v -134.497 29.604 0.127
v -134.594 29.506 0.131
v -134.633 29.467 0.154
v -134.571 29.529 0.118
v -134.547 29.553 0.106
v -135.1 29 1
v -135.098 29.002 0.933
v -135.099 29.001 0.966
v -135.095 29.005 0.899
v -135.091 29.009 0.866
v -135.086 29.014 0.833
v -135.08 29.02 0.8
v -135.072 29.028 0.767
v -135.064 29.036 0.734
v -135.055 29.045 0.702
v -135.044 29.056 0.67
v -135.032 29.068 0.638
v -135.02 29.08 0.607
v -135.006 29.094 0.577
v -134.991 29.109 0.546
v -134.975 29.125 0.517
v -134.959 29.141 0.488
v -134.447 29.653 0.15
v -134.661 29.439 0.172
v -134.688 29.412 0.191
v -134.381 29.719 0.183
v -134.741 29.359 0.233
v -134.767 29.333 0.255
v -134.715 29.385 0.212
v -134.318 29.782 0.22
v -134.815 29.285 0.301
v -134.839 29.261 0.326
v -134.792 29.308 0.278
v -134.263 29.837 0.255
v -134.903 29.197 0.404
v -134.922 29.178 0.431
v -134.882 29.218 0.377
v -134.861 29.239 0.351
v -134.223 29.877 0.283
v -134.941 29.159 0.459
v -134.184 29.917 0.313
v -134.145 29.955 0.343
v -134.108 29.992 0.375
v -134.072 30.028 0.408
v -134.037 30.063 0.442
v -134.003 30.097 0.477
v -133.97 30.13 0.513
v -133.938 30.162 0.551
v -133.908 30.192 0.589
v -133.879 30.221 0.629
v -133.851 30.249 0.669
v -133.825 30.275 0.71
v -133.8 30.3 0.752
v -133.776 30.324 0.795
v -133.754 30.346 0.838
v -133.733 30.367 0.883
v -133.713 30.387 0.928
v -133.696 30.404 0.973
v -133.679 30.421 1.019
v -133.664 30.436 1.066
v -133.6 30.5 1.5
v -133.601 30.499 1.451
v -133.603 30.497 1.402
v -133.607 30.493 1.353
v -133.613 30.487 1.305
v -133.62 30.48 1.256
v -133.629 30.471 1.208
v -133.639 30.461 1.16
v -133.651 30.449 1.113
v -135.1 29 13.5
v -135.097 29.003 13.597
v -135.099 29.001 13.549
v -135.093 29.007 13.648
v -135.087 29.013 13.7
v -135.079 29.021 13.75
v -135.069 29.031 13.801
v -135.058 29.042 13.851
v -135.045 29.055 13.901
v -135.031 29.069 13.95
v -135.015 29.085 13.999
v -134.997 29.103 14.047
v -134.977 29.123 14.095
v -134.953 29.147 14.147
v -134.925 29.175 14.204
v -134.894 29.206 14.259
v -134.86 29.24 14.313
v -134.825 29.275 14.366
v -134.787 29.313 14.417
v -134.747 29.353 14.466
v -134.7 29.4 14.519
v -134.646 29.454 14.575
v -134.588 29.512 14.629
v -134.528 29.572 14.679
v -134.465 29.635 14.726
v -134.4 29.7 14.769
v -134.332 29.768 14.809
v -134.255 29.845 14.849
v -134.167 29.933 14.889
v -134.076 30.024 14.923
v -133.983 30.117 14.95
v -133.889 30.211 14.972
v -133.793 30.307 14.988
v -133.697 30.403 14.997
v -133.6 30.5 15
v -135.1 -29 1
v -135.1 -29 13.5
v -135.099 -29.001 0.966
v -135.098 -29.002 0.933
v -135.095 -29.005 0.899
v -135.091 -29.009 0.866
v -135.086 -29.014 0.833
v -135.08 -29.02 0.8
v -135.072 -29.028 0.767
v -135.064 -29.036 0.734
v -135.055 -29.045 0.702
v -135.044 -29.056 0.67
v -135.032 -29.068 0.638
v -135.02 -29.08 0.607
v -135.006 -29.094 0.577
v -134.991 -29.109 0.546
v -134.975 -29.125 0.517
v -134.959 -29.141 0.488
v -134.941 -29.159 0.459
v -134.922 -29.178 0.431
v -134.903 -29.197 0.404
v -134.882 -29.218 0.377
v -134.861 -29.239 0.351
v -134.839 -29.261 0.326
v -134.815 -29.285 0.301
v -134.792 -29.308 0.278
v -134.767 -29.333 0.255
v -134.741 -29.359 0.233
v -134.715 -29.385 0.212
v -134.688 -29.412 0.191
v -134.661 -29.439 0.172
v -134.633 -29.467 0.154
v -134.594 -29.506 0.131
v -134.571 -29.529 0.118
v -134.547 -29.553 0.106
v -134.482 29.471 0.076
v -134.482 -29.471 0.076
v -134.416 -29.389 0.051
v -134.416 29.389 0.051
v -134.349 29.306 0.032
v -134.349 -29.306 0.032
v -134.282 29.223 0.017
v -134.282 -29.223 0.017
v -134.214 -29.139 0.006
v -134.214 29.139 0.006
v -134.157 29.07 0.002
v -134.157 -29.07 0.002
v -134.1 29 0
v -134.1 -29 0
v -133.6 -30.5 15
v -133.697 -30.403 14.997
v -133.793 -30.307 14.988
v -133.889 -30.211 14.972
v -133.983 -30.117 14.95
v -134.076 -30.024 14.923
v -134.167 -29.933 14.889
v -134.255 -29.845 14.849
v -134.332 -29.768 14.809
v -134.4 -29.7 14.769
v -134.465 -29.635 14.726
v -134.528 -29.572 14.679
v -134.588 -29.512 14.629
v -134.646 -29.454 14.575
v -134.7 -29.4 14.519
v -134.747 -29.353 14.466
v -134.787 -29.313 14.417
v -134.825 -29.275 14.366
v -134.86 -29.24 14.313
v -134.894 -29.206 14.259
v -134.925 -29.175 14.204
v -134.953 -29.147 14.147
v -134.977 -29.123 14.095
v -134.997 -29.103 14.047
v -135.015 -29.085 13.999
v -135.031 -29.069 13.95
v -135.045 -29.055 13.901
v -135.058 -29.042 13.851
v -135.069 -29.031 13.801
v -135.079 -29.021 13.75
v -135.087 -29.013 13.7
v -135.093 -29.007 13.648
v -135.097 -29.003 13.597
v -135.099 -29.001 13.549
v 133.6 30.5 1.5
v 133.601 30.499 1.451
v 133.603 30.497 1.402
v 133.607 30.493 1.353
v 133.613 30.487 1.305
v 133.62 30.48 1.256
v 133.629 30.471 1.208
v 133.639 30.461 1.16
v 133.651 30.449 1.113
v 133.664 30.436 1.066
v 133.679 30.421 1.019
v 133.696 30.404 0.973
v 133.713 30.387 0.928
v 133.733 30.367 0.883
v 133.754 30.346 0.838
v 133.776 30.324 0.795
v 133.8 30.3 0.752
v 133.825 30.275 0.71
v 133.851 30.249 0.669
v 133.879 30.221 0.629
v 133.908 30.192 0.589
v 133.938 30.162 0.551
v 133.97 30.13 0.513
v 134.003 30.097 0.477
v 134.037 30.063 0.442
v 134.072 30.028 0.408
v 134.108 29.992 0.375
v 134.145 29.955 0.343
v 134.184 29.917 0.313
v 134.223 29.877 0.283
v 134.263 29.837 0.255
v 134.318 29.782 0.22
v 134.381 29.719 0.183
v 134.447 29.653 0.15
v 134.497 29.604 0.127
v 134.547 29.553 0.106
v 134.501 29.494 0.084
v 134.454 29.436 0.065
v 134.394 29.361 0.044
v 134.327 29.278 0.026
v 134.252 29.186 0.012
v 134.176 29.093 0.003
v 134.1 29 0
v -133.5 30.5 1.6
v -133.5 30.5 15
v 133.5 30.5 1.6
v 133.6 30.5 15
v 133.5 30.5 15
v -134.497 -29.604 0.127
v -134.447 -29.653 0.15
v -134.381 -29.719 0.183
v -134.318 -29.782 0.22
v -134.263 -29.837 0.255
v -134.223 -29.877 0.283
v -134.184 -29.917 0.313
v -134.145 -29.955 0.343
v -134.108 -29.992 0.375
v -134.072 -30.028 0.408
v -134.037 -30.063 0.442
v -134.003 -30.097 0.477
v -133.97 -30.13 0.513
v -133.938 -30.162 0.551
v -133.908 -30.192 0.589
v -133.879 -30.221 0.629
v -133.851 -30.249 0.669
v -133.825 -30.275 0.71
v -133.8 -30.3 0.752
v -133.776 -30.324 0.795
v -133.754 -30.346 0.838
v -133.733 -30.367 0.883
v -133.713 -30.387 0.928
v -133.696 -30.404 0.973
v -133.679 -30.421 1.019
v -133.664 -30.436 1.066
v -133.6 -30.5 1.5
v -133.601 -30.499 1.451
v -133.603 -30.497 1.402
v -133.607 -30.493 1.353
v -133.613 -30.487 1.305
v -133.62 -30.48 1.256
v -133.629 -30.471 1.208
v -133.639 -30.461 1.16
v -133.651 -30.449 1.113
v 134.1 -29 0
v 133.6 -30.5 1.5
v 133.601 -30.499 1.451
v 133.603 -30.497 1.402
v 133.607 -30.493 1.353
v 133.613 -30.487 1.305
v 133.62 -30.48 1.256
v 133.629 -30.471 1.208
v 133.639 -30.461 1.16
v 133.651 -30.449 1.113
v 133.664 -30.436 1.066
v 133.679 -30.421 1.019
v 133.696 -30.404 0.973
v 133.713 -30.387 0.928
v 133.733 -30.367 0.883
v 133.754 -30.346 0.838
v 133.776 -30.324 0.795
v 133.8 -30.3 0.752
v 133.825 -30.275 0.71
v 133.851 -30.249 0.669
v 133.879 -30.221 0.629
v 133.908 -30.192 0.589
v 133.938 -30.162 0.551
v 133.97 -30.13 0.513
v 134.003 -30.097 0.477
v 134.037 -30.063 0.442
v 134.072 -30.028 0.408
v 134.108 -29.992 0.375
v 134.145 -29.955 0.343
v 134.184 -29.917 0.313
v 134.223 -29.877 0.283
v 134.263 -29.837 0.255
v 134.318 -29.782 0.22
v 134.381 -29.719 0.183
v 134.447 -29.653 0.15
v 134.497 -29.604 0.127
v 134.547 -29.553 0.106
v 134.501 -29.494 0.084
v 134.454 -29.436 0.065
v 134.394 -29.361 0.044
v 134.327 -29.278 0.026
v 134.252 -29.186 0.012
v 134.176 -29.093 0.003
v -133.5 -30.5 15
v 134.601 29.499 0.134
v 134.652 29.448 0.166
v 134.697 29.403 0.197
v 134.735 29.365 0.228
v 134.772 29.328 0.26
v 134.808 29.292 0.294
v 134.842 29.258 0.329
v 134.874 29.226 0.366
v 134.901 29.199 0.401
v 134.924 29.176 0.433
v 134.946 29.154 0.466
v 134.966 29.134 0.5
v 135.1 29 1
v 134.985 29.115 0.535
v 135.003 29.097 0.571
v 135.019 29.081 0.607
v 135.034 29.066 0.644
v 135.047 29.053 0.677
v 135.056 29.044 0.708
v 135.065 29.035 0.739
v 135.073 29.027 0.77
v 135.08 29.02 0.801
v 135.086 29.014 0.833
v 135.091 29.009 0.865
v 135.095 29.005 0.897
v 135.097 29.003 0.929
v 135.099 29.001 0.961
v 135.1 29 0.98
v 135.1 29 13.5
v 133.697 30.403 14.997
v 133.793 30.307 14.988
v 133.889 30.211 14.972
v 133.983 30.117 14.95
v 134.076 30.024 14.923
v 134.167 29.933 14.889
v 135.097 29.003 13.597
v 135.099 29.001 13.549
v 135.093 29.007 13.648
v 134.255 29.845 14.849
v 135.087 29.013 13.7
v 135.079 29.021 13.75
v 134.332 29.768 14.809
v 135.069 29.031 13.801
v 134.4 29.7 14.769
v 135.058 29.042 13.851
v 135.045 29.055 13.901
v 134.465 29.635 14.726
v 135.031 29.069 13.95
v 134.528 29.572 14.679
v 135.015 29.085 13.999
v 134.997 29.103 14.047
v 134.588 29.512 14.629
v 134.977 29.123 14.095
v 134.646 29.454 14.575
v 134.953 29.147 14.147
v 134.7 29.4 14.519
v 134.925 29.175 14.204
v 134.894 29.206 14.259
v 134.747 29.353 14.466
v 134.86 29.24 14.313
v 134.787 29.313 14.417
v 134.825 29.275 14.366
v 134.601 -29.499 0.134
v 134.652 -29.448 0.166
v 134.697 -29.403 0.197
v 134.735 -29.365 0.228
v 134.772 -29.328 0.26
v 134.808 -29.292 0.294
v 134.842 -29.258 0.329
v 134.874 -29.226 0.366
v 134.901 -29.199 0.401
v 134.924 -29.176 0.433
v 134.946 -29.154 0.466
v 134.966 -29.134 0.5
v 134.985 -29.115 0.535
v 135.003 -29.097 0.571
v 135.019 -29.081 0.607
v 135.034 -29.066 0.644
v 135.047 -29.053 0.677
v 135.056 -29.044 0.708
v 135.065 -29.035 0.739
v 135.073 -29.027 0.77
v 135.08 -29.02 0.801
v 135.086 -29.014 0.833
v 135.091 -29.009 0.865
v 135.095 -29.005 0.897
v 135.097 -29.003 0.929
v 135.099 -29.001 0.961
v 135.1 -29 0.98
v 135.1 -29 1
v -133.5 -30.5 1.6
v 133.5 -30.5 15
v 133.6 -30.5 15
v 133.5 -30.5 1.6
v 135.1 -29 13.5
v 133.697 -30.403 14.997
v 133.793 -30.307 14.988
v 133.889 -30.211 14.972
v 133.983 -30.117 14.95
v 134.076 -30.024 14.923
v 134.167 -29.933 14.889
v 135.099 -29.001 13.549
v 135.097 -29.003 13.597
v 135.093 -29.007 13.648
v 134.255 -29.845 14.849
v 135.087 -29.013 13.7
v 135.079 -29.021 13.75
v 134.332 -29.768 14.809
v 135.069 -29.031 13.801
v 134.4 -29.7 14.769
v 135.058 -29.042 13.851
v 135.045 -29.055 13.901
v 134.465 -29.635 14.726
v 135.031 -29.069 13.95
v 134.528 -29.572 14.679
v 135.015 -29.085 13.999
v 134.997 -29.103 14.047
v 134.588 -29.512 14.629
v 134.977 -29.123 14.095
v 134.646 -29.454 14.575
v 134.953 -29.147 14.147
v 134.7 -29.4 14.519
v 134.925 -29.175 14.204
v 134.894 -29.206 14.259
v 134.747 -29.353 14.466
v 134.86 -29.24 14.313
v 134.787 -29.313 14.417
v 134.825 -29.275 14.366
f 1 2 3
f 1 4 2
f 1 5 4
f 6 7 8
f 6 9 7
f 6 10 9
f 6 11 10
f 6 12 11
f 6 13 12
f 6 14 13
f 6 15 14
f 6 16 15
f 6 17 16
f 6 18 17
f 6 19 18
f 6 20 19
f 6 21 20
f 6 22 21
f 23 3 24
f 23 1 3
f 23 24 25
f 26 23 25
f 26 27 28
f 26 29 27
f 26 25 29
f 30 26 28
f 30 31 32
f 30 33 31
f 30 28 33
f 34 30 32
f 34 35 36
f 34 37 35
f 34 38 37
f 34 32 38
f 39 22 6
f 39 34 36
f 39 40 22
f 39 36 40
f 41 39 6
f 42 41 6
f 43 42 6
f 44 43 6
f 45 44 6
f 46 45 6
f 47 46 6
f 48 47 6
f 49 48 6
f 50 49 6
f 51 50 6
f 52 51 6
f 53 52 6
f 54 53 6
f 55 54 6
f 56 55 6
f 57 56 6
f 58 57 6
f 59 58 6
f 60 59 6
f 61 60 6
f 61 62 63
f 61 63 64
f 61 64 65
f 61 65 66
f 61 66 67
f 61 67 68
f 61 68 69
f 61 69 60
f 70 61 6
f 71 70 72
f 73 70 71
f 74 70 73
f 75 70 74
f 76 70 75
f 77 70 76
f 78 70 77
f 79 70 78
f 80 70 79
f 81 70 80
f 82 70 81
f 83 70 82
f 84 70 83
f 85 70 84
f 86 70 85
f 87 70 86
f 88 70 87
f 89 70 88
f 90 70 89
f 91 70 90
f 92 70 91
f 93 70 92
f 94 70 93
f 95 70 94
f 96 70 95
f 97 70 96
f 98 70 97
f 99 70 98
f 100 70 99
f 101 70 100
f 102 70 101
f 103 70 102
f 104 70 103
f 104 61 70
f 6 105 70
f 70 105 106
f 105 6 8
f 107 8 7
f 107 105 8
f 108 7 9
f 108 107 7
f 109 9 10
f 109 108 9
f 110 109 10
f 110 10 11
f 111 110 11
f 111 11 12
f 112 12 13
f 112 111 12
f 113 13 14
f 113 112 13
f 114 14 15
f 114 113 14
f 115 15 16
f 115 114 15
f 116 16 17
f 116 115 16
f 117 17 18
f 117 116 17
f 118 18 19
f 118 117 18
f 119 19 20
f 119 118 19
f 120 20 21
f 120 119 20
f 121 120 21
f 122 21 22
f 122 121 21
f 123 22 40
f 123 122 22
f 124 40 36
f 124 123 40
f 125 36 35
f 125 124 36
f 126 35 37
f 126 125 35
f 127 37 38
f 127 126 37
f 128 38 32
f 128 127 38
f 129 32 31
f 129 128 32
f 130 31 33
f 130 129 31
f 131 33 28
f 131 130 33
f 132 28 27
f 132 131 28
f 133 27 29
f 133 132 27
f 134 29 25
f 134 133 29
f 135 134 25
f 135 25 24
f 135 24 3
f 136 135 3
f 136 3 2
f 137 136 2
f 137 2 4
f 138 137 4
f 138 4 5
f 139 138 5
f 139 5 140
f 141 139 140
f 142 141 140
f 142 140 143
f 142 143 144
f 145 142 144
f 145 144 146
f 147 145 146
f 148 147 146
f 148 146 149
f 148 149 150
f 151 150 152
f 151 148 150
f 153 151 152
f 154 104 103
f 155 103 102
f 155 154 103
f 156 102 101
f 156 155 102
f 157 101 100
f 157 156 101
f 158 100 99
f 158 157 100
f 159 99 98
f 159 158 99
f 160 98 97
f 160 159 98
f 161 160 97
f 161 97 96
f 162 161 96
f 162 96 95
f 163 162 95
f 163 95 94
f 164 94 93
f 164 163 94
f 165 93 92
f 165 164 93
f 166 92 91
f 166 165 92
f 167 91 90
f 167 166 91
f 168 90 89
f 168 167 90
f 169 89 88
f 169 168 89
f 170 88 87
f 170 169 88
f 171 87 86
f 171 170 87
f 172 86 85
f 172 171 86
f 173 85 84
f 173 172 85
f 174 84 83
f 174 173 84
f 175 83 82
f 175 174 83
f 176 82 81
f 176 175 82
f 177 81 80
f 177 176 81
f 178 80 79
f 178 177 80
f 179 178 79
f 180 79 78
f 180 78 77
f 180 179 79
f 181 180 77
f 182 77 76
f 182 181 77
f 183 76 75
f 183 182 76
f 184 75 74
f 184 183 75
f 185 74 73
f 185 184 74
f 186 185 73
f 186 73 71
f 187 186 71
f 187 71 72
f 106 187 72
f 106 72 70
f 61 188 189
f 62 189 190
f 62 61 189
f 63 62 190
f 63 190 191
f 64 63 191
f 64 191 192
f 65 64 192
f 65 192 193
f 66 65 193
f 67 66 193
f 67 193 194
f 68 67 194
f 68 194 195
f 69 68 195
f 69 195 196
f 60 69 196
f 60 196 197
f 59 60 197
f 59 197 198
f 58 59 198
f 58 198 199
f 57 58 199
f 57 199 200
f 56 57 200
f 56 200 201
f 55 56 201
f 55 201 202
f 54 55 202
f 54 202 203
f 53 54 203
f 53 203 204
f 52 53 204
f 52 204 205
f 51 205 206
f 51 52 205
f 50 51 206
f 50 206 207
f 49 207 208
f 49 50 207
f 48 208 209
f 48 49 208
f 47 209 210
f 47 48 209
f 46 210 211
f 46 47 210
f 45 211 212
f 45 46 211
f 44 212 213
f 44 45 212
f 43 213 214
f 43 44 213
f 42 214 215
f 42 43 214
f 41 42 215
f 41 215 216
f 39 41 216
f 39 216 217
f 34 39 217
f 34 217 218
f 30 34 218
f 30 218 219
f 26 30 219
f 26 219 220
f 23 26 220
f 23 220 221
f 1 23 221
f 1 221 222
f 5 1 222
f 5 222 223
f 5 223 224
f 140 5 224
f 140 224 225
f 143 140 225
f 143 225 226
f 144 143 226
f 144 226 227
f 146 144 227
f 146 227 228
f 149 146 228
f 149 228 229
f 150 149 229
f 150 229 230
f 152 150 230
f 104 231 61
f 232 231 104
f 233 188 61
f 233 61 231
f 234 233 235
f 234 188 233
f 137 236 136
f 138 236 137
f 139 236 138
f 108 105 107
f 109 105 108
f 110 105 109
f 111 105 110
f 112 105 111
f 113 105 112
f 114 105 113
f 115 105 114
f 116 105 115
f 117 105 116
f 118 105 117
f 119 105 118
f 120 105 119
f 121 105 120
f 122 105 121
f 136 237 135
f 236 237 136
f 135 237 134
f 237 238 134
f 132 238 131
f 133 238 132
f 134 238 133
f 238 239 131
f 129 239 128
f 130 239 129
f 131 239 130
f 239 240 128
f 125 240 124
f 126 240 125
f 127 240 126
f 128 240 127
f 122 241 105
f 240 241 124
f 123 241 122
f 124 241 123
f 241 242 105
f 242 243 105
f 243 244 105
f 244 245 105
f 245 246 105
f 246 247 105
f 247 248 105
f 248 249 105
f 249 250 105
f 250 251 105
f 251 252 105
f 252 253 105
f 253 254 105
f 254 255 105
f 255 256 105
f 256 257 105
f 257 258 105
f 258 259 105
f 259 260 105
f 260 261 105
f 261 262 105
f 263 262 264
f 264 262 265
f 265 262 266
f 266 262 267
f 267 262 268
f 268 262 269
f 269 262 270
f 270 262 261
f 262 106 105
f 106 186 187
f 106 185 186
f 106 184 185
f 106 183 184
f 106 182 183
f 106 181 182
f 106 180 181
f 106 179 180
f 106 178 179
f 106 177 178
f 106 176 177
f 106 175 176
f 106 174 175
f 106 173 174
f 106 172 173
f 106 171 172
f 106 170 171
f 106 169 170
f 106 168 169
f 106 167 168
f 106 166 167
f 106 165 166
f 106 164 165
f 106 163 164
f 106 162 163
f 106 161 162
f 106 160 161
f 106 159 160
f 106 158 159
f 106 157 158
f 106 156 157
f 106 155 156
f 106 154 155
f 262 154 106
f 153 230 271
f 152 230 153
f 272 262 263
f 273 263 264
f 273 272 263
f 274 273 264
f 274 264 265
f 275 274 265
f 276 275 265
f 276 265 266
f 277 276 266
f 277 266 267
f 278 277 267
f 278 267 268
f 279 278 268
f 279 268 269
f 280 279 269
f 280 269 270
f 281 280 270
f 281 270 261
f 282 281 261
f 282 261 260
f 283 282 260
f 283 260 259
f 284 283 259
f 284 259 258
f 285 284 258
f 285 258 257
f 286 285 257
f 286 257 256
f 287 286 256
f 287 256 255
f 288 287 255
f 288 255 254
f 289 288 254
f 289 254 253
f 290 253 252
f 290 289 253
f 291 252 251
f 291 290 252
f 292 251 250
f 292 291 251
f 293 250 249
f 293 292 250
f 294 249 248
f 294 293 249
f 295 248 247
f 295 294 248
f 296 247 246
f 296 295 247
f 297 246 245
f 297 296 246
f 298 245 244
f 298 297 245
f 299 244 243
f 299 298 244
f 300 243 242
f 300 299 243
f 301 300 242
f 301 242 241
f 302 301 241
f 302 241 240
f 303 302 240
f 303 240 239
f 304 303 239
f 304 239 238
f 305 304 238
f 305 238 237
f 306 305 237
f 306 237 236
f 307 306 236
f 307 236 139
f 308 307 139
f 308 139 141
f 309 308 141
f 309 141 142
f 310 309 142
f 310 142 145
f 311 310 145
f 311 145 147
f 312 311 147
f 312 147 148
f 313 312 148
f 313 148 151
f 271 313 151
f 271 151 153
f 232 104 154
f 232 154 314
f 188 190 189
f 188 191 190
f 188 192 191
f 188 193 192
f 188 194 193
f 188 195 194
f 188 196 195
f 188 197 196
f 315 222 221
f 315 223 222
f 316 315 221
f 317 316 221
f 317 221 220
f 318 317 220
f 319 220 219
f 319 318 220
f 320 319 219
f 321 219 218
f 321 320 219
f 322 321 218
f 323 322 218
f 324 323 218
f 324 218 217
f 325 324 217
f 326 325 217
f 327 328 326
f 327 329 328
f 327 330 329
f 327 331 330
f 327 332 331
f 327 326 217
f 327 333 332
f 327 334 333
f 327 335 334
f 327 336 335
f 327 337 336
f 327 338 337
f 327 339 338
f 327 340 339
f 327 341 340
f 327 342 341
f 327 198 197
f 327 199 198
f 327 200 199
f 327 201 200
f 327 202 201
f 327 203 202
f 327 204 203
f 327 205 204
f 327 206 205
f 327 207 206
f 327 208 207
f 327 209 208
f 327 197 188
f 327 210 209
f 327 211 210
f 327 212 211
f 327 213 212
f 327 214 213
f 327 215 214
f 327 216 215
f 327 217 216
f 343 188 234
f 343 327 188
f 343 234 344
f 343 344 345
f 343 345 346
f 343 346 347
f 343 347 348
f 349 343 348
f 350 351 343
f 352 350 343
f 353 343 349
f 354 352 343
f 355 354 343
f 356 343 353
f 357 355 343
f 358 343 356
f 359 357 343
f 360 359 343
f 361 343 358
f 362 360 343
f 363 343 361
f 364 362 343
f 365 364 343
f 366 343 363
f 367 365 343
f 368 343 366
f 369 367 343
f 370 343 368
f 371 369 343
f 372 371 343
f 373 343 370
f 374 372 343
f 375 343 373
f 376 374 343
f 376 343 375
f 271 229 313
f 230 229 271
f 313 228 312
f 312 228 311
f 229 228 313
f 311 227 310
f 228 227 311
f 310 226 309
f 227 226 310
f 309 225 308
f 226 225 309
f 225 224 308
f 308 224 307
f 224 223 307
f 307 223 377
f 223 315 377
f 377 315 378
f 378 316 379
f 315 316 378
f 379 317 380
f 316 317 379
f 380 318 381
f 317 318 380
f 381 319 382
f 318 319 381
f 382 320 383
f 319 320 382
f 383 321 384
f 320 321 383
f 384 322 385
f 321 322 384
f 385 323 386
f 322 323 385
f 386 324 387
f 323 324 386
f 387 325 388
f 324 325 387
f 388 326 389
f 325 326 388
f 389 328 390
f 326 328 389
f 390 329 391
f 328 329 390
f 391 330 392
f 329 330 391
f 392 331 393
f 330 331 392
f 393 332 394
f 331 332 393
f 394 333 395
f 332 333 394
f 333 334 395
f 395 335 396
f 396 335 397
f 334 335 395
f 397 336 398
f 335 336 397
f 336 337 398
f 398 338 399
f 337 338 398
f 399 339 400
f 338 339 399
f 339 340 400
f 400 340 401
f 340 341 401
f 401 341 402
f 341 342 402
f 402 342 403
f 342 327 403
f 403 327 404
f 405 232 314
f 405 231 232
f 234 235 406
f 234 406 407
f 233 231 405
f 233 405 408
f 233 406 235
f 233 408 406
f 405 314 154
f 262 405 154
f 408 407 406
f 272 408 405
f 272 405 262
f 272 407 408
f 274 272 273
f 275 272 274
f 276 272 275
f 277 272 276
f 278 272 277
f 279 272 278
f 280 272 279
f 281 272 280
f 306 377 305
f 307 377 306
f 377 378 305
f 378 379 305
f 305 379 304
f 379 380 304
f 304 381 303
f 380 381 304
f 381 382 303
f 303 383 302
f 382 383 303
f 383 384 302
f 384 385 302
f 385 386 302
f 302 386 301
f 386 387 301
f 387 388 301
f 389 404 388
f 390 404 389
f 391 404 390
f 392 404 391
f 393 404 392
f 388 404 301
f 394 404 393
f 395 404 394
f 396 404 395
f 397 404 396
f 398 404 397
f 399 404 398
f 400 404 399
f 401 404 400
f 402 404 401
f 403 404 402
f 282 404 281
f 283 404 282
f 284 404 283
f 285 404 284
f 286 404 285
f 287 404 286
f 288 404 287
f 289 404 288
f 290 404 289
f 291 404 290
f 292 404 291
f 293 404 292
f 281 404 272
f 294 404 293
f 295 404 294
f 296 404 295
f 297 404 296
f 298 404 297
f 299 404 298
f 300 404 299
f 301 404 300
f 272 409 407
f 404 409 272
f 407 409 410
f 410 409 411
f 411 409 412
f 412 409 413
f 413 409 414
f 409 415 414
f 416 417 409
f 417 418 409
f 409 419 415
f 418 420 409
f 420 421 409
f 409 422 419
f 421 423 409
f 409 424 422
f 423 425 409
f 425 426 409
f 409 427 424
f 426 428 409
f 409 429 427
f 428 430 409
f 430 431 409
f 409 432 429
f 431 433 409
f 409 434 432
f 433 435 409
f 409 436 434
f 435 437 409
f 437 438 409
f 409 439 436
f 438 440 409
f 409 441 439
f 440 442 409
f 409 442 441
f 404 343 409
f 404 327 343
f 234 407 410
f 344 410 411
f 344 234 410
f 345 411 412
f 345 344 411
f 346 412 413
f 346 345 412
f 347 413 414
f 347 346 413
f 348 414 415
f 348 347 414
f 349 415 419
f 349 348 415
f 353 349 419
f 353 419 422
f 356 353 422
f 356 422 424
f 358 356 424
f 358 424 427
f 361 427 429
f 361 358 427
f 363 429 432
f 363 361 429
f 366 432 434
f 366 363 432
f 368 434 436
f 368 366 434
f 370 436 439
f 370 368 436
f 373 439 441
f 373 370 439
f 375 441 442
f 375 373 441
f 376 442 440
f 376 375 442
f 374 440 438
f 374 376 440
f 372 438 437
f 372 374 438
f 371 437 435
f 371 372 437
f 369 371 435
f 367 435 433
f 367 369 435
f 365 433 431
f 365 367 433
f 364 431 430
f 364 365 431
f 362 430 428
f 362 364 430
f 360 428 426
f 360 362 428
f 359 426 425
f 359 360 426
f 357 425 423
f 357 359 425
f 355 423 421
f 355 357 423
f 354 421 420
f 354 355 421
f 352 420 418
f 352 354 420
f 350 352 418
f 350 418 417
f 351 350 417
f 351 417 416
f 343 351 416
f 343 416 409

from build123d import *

# Parameters (mm, degrees)
SKETCH_W     = 270.2
SKETCH_H     = 61
PAD_DEPTH    = 1.6
SKETCH001_W  = 1.6
SKETCH001_H  = 61
PAD001_DEPTH = 15
CHAMFER_SIZE = 1.5
FILLET_R     = 1.5
FILLET001_R  = 1.5
FILLET002_R  = 1


with BuildPart() as part:
    # Sketch → Pad (new body)
    with BuildSketch(Plane.XY):
        Rectangle(SKETCH_W, SKETCH_H)
    extrude(amount=PAD_DEPTH)

    # Sketch001 → Pad001 (join)
    with BuildSketch(Plane.XY):
        with Locations((-134.3, 0)):
            Rectangle(SKETCH001_W, SKETCH001_H)
        with Locations((134.3, 0)):
            Rectangle(SKETCH001_W, SKETCH001_H)
    extrude(amount=PAD001_DEPTH)

    # Chamfer
    chamfer_edges = [part.edges().sort_by_distance(p)[0] for p in [
        (-135.1, 30.5, 7.5),
        (135.1, 30.5, 7.5),
        (135.1, -30.5, 7.5),
        (-135.1, -30.5, 7.5),
    ]]
    chamfer(chamfer_edges, length=CHAMFER_SIZE)

    # Fillet
    fillet_edges = [part.edges().sort_by_distance(p)[0] for p in [
        (0, -30.5, 0),
        (0, 30.5, 0),
    ]]
    fillet(fillet_edges, radius=FILLET_R)

    # Fillet001
    fillet001_edges = [part.edges().sort_by_distance(p)[0] for p in [
        (-135.1, 0, 15),
        (135.1, 0, 15),
    ]]
    fillet(fillet001_edges, radius=FILLET001_R)

    # Fillet002
    fillet002_edges = [part.edges().sort_by_distance(p)[0] for p in [
        (-135.1, 0, 0),
        (135.1, 0, 0),
    ]]
    fillet(fillet002_edges, radius=FILLET002_R)


solid = part.part
